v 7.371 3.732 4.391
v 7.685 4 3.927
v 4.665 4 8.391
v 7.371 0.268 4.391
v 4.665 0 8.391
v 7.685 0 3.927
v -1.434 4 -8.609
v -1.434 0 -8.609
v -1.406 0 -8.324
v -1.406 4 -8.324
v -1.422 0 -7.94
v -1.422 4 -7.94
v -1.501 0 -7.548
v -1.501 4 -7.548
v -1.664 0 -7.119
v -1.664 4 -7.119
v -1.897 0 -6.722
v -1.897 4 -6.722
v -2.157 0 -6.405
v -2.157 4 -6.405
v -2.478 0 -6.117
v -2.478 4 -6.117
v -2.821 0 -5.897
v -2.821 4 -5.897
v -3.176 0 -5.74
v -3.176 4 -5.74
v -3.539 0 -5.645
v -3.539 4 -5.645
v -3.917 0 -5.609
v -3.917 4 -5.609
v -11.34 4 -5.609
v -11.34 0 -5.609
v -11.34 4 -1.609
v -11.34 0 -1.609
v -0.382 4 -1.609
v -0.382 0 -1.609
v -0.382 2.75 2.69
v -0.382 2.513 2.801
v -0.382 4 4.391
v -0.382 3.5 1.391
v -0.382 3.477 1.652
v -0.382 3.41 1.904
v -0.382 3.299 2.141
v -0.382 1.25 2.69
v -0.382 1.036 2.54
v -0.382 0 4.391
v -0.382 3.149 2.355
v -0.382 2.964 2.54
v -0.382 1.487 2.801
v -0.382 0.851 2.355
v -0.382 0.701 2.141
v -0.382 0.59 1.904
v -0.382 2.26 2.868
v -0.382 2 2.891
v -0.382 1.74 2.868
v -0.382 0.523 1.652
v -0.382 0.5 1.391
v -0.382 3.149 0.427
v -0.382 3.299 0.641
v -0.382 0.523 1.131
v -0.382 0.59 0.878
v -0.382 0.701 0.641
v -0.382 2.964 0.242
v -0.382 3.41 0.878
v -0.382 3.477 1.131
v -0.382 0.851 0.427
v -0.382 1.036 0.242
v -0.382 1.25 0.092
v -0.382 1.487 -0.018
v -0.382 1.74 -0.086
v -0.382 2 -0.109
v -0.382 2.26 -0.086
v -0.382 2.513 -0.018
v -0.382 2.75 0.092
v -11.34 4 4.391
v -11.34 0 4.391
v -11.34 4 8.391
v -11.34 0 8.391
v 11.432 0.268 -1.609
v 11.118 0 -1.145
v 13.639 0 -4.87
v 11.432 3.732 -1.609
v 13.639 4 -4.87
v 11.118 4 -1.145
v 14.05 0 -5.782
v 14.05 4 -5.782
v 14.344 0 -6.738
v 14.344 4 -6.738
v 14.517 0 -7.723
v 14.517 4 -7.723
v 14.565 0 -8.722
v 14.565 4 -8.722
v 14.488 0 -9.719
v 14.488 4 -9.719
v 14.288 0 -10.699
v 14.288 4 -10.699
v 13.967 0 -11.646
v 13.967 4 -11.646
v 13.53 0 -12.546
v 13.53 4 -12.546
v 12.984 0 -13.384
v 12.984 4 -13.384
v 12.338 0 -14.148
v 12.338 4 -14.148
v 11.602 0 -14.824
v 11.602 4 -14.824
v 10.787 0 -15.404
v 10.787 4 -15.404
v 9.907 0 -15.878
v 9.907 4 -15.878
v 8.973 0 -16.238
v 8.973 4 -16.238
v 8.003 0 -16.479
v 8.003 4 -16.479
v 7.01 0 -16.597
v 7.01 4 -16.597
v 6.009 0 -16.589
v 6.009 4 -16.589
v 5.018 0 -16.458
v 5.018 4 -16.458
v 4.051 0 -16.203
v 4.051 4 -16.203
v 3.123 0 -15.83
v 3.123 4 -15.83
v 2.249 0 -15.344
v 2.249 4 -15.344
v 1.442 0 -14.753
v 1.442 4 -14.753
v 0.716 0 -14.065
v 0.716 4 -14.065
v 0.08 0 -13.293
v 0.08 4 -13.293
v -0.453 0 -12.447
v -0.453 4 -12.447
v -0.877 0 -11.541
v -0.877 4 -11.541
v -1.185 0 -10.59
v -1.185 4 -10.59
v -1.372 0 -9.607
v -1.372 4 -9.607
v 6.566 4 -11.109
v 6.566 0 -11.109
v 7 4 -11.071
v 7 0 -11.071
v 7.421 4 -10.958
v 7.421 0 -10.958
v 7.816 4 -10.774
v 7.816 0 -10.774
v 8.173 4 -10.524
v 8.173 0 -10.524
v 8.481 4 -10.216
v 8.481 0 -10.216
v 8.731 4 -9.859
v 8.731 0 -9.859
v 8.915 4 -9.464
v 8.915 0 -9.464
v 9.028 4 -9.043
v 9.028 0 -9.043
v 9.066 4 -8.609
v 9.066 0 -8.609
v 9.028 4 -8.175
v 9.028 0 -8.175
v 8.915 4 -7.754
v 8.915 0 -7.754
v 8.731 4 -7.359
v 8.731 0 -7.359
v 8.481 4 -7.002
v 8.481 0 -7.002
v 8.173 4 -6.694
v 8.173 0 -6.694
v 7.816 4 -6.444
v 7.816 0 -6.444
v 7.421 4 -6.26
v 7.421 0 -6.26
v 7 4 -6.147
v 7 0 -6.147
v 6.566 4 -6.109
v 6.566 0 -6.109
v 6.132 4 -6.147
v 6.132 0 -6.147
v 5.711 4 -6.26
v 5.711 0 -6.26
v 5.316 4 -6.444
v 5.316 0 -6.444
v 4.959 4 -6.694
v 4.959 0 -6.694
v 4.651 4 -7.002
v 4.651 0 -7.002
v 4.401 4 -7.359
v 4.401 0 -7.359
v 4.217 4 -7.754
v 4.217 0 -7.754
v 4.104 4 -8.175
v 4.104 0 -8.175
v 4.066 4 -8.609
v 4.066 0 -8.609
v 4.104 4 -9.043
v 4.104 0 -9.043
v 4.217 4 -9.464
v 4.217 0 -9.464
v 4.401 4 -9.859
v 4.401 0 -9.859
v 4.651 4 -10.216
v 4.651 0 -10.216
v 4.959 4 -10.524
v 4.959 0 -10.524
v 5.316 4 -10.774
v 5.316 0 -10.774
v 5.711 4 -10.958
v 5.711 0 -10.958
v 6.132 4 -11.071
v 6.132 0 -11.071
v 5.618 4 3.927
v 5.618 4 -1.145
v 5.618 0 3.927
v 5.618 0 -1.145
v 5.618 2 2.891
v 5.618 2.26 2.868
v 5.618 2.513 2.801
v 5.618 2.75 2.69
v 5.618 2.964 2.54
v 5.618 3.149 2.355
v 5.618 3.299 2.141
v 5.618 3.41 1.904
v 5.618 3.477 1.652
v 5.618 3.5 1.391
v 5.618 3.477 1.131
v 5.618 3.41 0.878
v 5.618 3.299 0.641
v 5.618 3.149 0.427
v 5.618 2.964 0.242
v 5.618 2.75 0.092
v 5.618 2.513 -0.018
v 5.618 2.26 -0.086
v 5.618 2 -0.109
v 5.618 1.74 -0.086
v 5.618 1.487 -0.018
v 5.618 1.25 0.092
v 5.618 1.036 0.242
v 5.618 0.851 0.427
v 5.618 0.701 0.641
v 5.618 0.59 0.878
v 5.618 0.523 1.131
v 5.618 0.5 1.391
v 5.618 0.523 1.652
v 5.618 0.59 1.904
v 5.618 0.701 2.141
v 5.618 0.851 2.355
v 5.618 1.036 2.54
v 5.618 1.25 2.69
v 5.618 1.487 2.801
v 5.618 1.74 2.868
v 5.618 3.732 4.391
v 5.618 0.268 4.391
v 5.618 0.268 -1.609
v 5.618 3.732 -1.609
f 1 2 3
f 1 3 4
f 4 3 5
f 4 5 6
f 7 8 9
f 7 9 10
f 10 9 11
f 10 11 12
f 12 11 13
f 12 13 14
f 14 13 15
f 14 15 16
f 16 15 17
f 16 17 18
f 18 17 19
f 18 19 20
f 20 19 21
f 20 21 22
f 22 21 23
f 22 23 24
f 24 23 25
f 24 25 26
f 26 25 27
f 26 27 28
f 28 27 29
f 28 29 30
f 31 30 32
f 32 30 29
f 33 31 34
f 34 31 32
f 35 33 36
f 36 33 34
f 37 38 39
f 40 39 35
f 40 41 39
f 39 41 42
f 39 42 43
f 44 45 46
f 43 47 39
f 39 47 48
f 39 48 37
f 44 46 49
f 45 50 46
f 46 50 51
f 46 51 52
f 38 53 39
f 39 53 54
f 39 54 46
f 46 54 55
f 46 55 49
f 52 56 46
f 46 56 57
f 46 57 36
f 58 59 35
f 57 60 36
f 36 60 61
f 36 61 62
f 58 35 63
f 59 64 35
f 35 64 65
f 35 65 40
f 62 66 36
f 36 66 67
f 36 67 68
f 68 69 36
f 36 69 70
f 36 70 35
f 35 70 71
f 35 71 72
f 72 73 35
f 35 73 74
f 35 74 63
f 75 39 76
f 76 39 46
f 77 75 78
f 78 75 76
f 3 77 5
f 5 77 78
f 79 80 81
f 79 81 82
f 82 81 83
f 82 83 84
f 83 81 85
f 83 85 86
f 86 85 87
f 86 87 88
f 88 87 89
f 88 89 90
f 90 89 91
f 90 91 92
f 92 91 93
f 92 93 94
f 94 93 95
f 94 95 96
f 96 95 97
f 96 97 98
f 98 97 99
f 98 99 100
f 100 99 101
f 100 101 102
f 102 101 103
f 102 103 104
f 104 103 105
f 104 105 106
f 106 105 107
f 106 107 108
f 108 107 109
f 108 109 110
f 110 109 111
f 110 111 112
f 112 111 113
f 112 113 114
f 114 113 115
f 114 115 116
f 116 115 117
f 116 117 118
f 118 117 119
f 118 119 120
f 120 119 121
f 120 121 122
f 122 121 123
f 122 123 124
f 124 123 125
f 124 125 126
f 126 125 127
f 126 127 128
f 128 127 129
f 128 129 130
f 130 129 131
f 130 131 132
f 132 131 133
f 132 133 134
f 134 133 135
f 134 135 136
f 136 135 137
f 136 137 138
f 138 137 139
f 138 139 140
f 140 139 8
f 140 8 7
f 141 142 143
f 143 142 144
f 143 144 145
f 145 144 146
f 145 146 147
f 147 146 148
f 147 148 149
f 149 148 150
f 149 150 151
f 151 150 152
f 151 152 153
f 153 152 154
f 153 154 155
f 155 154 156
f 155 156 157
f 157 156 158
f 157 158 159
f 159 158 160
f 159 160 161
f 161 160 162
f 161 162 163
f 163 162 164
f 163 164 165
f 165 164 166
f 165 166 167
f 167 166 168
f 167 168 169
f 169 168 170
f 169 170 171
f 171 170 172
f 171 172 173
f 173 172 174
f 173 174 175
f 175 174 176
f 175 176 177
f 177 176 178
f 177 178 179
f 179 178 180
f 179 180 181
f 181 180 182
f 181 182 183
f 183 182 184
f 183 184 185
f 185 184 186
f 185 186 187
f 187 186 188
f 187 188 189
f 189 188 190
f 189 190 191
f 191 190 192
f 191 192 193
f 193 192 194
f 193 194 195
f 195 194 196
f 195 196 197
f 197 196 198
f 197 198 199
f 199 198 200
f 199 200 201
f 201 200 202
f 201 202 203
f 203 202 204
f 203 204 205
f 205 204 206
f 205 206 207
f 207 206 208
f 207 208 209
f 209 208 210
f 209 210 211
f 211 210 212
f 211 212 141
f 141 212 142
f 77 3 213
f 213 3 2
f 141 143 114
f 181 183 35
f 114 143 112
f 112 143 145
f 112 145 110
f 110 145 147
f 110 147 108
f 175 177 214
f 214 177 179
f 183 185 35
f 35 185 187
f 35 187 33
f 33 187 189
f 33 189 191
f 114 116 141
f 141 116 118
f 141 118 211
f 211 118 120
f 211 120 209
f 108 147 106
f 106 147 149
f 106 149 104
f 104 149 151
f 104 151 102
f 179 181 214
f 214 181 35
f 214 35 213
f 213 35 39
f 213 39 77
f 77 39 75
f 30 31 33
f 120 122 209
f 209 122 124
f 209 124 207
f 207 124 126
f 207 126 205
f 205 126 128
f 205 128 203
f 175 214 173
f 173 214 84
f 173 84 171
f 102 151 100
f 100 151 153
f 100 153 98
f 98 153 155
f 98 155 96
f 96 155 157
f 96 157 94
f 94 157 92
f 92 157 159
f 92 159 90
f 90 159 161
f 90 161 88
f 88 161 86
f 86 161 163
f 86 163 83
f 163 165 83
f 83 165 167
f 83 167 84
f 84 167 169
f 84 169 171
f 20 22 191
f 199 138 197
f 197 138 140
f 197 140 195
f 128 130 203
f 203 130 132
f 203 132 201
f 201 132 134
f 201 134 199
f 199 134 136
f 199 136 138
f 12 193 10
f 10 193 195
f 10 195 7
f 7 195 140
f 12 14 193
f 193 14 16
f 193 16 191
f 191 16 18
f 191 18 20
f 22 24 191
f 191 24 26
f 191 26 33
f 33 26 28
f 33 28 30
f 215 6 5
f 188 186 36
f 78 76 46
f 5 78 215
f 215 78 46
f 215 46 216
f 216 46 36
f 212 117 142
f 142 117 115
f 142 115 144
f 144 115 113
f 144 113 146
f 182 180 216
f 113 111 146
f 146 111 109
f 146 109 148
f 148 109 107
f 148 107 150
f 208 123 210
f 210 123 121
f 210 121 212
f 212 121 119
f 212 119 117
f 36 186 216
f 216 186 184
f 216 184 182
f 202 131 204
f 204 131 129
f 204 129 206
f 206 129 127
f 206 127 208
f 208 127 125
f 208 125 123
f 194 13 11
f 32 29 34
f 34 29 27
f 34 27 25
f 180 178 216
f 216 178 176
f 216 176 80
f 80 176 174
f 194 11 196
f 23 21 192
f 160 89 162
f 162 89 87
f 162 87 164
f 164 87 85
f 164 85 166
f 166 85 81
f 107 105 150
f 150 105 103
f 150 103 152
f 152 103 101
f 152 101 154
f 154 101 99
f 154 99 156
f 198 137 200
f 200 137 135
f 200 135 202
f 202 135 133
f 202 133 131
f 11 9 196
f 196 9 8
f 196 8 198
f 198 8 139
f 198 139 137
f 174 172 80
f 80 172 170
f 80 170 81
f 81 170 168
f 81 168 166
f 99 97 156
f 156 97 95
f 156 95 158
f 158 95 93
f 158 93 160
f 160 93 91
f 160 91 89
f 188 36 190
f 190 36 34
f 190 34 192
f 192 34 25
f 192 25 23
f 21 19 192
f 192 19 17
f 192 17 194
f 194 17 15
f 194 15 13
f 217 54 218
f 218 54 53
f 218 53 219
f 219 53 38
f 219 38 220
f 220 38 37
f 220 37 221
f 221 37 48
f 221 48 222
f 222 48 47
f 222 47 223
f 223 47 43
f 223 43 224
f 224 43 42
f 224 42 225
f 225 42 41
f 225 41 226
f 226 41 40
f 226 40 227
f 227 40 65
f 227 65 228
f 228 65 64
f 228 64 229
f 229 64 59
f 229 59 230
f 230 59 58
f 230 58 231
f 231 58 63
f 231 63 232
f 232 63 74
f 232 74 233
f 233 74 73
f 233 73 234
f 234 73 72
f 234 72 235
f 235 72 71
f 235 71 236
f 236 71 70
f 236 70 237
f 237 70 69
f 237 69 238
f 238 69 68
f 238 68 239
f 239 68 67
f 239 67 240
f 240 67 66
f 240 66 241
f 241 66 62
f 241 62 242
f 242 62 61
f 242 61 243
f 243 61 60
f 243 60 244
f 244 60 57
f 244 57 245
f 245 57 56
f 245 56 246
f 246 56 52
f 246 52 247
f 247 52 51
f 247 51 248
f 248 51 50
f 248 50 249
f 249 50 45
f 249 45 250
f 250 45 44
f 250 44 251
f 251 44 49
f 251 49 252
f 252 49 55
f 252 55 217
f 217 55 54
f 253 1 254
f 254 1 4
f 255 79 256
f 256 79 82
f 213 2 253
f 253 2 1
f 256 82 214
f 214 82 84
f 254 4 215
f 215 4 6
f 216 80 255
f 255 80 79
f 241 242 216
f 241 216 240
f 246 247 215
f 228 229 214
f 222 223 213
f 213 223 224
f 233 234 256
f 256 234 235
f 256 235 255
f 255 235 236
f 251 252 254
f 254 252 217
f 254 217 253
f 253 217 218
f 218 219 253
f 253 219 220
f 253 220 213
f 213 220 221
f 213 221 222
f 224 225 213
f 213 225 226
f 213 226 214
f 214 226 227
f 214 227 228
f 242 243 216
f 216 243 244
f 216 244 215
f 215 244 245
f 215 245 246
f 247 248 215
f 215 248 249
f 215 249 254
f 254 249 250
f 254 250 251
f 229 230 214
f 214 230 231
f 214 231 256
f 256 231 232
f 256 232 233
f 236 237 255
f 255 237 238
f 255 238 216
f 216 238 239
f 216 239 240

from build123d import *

# Parameters (mm, degrees)
SKETCH1_R               = 2.5
BOSS_EXTRUDE1_DEPTH     = 4
CUT_EXTRUDE1_DEPTH      = 23.69985803
CUT_EXTRUDE1_DEPTH_BACK = 23.69985803
SKETCH2_R               = 1.5
CUT_EXTRUDE2_START      = -6
SKETCH2_3_R             = 1.5
CUT_EXTRUDE2_DEPTH      = 17.69985803


with BuildPart() as part:
    # Sketch1 → Boss-Extrude1 (new body)
    with BuildSketch(Plane(origin=(0, 0, 0), x_dir=(1, 0, 0), z_dir=(0, 1, 0))):
        with BuildLine():
            Line((-3.917235504, 5.608829899), (-11.340461202, 5.608829899))
            Line((-11.340461202, 5.608829899), (-11.340461202, 1.608829899))
            Line((-11.340461202, 1.608829899), (-0.381690636, 1.608829899))
            Line((-0.381690636, 1.608829899), (-0.381690636, -4.391170101))
            Line((-0.381690636, -4.391170101), (-11.340461202, -4.391170101))
            Line((-11.340461202, -4.391170101), (-11.340461202, -8.391170101))
            Line((-11.340461202, -8.391170101), (4.664608782, -8.391170101))
            Line((4.664608782, -8.391170101), (13.638576545, 4.87022374))
            ThreePointArc((13.638576545, 4.87022374), (8.491842548, 16.373540203), (-1.434104983, 8.608829899))
            add(Edge.make_bspline(
                [(-1.434104983, 8.608829899), (-1.198427894, 7.122985203), (-2.407634222, 5.627246583), (-3.917235504, 5.608829899)],
                knots=[0.869474373, 0.869474373, 0.869474373, 0.869474373, 1.869474373, 1.869474373, 1.869474373, 1.869474373], degree=3))
        make_face()
        with Locations(Location((6.565895017, 8.608829899, 0), (0, 0, 270))):
            Circle(SKETCH1_R, mode=Mode.SUBTRACT)
    extrude(amount=BOSS_EXTRUDE1_DEPTH)

    # Sketch2 → Cut-Extrude1 (cut, two sides: drawn at the far end of the back side and taken through both)
    with BuildSketch(Plane.ZY.offset(0.381690636).offset(-CUT_EXTRUDE1_DEPTH_BACK)):
        with Locations((1.391170101, 2)):
            Circle(SKETCH2_R)
    extrude(amount=CUT_EXTRUDE1_DEPTH + CUT_EXTRUDE1_DEPTH_BACK, mode=Mode.SUBTRACT)

    # Sketch2<3> → Cut-Extrude2 (cut, through all)
    with BuildSketch(Plane.ZY.offset(0.381690636).offset(CUT_EXTRUDE2_START)):
        Polygon((-1.608829899, 3.732050808), (-1.608829899, 0.267949192), (1.391170101, -1.464101615), (4.391170101, 0.267949192), (4.391170101, 3.732050808), (1.391170101, 5.464101615), align=None)
        with Locations((1.391170101, 2)):
            Circle(SKETCH2_3_R, mode=Mode.SUBTRACT)
    extrude(amount=-CUT_EXTRUDE2_DEPTH, mode=Mode.SUBTRACT)


solid = part.part
